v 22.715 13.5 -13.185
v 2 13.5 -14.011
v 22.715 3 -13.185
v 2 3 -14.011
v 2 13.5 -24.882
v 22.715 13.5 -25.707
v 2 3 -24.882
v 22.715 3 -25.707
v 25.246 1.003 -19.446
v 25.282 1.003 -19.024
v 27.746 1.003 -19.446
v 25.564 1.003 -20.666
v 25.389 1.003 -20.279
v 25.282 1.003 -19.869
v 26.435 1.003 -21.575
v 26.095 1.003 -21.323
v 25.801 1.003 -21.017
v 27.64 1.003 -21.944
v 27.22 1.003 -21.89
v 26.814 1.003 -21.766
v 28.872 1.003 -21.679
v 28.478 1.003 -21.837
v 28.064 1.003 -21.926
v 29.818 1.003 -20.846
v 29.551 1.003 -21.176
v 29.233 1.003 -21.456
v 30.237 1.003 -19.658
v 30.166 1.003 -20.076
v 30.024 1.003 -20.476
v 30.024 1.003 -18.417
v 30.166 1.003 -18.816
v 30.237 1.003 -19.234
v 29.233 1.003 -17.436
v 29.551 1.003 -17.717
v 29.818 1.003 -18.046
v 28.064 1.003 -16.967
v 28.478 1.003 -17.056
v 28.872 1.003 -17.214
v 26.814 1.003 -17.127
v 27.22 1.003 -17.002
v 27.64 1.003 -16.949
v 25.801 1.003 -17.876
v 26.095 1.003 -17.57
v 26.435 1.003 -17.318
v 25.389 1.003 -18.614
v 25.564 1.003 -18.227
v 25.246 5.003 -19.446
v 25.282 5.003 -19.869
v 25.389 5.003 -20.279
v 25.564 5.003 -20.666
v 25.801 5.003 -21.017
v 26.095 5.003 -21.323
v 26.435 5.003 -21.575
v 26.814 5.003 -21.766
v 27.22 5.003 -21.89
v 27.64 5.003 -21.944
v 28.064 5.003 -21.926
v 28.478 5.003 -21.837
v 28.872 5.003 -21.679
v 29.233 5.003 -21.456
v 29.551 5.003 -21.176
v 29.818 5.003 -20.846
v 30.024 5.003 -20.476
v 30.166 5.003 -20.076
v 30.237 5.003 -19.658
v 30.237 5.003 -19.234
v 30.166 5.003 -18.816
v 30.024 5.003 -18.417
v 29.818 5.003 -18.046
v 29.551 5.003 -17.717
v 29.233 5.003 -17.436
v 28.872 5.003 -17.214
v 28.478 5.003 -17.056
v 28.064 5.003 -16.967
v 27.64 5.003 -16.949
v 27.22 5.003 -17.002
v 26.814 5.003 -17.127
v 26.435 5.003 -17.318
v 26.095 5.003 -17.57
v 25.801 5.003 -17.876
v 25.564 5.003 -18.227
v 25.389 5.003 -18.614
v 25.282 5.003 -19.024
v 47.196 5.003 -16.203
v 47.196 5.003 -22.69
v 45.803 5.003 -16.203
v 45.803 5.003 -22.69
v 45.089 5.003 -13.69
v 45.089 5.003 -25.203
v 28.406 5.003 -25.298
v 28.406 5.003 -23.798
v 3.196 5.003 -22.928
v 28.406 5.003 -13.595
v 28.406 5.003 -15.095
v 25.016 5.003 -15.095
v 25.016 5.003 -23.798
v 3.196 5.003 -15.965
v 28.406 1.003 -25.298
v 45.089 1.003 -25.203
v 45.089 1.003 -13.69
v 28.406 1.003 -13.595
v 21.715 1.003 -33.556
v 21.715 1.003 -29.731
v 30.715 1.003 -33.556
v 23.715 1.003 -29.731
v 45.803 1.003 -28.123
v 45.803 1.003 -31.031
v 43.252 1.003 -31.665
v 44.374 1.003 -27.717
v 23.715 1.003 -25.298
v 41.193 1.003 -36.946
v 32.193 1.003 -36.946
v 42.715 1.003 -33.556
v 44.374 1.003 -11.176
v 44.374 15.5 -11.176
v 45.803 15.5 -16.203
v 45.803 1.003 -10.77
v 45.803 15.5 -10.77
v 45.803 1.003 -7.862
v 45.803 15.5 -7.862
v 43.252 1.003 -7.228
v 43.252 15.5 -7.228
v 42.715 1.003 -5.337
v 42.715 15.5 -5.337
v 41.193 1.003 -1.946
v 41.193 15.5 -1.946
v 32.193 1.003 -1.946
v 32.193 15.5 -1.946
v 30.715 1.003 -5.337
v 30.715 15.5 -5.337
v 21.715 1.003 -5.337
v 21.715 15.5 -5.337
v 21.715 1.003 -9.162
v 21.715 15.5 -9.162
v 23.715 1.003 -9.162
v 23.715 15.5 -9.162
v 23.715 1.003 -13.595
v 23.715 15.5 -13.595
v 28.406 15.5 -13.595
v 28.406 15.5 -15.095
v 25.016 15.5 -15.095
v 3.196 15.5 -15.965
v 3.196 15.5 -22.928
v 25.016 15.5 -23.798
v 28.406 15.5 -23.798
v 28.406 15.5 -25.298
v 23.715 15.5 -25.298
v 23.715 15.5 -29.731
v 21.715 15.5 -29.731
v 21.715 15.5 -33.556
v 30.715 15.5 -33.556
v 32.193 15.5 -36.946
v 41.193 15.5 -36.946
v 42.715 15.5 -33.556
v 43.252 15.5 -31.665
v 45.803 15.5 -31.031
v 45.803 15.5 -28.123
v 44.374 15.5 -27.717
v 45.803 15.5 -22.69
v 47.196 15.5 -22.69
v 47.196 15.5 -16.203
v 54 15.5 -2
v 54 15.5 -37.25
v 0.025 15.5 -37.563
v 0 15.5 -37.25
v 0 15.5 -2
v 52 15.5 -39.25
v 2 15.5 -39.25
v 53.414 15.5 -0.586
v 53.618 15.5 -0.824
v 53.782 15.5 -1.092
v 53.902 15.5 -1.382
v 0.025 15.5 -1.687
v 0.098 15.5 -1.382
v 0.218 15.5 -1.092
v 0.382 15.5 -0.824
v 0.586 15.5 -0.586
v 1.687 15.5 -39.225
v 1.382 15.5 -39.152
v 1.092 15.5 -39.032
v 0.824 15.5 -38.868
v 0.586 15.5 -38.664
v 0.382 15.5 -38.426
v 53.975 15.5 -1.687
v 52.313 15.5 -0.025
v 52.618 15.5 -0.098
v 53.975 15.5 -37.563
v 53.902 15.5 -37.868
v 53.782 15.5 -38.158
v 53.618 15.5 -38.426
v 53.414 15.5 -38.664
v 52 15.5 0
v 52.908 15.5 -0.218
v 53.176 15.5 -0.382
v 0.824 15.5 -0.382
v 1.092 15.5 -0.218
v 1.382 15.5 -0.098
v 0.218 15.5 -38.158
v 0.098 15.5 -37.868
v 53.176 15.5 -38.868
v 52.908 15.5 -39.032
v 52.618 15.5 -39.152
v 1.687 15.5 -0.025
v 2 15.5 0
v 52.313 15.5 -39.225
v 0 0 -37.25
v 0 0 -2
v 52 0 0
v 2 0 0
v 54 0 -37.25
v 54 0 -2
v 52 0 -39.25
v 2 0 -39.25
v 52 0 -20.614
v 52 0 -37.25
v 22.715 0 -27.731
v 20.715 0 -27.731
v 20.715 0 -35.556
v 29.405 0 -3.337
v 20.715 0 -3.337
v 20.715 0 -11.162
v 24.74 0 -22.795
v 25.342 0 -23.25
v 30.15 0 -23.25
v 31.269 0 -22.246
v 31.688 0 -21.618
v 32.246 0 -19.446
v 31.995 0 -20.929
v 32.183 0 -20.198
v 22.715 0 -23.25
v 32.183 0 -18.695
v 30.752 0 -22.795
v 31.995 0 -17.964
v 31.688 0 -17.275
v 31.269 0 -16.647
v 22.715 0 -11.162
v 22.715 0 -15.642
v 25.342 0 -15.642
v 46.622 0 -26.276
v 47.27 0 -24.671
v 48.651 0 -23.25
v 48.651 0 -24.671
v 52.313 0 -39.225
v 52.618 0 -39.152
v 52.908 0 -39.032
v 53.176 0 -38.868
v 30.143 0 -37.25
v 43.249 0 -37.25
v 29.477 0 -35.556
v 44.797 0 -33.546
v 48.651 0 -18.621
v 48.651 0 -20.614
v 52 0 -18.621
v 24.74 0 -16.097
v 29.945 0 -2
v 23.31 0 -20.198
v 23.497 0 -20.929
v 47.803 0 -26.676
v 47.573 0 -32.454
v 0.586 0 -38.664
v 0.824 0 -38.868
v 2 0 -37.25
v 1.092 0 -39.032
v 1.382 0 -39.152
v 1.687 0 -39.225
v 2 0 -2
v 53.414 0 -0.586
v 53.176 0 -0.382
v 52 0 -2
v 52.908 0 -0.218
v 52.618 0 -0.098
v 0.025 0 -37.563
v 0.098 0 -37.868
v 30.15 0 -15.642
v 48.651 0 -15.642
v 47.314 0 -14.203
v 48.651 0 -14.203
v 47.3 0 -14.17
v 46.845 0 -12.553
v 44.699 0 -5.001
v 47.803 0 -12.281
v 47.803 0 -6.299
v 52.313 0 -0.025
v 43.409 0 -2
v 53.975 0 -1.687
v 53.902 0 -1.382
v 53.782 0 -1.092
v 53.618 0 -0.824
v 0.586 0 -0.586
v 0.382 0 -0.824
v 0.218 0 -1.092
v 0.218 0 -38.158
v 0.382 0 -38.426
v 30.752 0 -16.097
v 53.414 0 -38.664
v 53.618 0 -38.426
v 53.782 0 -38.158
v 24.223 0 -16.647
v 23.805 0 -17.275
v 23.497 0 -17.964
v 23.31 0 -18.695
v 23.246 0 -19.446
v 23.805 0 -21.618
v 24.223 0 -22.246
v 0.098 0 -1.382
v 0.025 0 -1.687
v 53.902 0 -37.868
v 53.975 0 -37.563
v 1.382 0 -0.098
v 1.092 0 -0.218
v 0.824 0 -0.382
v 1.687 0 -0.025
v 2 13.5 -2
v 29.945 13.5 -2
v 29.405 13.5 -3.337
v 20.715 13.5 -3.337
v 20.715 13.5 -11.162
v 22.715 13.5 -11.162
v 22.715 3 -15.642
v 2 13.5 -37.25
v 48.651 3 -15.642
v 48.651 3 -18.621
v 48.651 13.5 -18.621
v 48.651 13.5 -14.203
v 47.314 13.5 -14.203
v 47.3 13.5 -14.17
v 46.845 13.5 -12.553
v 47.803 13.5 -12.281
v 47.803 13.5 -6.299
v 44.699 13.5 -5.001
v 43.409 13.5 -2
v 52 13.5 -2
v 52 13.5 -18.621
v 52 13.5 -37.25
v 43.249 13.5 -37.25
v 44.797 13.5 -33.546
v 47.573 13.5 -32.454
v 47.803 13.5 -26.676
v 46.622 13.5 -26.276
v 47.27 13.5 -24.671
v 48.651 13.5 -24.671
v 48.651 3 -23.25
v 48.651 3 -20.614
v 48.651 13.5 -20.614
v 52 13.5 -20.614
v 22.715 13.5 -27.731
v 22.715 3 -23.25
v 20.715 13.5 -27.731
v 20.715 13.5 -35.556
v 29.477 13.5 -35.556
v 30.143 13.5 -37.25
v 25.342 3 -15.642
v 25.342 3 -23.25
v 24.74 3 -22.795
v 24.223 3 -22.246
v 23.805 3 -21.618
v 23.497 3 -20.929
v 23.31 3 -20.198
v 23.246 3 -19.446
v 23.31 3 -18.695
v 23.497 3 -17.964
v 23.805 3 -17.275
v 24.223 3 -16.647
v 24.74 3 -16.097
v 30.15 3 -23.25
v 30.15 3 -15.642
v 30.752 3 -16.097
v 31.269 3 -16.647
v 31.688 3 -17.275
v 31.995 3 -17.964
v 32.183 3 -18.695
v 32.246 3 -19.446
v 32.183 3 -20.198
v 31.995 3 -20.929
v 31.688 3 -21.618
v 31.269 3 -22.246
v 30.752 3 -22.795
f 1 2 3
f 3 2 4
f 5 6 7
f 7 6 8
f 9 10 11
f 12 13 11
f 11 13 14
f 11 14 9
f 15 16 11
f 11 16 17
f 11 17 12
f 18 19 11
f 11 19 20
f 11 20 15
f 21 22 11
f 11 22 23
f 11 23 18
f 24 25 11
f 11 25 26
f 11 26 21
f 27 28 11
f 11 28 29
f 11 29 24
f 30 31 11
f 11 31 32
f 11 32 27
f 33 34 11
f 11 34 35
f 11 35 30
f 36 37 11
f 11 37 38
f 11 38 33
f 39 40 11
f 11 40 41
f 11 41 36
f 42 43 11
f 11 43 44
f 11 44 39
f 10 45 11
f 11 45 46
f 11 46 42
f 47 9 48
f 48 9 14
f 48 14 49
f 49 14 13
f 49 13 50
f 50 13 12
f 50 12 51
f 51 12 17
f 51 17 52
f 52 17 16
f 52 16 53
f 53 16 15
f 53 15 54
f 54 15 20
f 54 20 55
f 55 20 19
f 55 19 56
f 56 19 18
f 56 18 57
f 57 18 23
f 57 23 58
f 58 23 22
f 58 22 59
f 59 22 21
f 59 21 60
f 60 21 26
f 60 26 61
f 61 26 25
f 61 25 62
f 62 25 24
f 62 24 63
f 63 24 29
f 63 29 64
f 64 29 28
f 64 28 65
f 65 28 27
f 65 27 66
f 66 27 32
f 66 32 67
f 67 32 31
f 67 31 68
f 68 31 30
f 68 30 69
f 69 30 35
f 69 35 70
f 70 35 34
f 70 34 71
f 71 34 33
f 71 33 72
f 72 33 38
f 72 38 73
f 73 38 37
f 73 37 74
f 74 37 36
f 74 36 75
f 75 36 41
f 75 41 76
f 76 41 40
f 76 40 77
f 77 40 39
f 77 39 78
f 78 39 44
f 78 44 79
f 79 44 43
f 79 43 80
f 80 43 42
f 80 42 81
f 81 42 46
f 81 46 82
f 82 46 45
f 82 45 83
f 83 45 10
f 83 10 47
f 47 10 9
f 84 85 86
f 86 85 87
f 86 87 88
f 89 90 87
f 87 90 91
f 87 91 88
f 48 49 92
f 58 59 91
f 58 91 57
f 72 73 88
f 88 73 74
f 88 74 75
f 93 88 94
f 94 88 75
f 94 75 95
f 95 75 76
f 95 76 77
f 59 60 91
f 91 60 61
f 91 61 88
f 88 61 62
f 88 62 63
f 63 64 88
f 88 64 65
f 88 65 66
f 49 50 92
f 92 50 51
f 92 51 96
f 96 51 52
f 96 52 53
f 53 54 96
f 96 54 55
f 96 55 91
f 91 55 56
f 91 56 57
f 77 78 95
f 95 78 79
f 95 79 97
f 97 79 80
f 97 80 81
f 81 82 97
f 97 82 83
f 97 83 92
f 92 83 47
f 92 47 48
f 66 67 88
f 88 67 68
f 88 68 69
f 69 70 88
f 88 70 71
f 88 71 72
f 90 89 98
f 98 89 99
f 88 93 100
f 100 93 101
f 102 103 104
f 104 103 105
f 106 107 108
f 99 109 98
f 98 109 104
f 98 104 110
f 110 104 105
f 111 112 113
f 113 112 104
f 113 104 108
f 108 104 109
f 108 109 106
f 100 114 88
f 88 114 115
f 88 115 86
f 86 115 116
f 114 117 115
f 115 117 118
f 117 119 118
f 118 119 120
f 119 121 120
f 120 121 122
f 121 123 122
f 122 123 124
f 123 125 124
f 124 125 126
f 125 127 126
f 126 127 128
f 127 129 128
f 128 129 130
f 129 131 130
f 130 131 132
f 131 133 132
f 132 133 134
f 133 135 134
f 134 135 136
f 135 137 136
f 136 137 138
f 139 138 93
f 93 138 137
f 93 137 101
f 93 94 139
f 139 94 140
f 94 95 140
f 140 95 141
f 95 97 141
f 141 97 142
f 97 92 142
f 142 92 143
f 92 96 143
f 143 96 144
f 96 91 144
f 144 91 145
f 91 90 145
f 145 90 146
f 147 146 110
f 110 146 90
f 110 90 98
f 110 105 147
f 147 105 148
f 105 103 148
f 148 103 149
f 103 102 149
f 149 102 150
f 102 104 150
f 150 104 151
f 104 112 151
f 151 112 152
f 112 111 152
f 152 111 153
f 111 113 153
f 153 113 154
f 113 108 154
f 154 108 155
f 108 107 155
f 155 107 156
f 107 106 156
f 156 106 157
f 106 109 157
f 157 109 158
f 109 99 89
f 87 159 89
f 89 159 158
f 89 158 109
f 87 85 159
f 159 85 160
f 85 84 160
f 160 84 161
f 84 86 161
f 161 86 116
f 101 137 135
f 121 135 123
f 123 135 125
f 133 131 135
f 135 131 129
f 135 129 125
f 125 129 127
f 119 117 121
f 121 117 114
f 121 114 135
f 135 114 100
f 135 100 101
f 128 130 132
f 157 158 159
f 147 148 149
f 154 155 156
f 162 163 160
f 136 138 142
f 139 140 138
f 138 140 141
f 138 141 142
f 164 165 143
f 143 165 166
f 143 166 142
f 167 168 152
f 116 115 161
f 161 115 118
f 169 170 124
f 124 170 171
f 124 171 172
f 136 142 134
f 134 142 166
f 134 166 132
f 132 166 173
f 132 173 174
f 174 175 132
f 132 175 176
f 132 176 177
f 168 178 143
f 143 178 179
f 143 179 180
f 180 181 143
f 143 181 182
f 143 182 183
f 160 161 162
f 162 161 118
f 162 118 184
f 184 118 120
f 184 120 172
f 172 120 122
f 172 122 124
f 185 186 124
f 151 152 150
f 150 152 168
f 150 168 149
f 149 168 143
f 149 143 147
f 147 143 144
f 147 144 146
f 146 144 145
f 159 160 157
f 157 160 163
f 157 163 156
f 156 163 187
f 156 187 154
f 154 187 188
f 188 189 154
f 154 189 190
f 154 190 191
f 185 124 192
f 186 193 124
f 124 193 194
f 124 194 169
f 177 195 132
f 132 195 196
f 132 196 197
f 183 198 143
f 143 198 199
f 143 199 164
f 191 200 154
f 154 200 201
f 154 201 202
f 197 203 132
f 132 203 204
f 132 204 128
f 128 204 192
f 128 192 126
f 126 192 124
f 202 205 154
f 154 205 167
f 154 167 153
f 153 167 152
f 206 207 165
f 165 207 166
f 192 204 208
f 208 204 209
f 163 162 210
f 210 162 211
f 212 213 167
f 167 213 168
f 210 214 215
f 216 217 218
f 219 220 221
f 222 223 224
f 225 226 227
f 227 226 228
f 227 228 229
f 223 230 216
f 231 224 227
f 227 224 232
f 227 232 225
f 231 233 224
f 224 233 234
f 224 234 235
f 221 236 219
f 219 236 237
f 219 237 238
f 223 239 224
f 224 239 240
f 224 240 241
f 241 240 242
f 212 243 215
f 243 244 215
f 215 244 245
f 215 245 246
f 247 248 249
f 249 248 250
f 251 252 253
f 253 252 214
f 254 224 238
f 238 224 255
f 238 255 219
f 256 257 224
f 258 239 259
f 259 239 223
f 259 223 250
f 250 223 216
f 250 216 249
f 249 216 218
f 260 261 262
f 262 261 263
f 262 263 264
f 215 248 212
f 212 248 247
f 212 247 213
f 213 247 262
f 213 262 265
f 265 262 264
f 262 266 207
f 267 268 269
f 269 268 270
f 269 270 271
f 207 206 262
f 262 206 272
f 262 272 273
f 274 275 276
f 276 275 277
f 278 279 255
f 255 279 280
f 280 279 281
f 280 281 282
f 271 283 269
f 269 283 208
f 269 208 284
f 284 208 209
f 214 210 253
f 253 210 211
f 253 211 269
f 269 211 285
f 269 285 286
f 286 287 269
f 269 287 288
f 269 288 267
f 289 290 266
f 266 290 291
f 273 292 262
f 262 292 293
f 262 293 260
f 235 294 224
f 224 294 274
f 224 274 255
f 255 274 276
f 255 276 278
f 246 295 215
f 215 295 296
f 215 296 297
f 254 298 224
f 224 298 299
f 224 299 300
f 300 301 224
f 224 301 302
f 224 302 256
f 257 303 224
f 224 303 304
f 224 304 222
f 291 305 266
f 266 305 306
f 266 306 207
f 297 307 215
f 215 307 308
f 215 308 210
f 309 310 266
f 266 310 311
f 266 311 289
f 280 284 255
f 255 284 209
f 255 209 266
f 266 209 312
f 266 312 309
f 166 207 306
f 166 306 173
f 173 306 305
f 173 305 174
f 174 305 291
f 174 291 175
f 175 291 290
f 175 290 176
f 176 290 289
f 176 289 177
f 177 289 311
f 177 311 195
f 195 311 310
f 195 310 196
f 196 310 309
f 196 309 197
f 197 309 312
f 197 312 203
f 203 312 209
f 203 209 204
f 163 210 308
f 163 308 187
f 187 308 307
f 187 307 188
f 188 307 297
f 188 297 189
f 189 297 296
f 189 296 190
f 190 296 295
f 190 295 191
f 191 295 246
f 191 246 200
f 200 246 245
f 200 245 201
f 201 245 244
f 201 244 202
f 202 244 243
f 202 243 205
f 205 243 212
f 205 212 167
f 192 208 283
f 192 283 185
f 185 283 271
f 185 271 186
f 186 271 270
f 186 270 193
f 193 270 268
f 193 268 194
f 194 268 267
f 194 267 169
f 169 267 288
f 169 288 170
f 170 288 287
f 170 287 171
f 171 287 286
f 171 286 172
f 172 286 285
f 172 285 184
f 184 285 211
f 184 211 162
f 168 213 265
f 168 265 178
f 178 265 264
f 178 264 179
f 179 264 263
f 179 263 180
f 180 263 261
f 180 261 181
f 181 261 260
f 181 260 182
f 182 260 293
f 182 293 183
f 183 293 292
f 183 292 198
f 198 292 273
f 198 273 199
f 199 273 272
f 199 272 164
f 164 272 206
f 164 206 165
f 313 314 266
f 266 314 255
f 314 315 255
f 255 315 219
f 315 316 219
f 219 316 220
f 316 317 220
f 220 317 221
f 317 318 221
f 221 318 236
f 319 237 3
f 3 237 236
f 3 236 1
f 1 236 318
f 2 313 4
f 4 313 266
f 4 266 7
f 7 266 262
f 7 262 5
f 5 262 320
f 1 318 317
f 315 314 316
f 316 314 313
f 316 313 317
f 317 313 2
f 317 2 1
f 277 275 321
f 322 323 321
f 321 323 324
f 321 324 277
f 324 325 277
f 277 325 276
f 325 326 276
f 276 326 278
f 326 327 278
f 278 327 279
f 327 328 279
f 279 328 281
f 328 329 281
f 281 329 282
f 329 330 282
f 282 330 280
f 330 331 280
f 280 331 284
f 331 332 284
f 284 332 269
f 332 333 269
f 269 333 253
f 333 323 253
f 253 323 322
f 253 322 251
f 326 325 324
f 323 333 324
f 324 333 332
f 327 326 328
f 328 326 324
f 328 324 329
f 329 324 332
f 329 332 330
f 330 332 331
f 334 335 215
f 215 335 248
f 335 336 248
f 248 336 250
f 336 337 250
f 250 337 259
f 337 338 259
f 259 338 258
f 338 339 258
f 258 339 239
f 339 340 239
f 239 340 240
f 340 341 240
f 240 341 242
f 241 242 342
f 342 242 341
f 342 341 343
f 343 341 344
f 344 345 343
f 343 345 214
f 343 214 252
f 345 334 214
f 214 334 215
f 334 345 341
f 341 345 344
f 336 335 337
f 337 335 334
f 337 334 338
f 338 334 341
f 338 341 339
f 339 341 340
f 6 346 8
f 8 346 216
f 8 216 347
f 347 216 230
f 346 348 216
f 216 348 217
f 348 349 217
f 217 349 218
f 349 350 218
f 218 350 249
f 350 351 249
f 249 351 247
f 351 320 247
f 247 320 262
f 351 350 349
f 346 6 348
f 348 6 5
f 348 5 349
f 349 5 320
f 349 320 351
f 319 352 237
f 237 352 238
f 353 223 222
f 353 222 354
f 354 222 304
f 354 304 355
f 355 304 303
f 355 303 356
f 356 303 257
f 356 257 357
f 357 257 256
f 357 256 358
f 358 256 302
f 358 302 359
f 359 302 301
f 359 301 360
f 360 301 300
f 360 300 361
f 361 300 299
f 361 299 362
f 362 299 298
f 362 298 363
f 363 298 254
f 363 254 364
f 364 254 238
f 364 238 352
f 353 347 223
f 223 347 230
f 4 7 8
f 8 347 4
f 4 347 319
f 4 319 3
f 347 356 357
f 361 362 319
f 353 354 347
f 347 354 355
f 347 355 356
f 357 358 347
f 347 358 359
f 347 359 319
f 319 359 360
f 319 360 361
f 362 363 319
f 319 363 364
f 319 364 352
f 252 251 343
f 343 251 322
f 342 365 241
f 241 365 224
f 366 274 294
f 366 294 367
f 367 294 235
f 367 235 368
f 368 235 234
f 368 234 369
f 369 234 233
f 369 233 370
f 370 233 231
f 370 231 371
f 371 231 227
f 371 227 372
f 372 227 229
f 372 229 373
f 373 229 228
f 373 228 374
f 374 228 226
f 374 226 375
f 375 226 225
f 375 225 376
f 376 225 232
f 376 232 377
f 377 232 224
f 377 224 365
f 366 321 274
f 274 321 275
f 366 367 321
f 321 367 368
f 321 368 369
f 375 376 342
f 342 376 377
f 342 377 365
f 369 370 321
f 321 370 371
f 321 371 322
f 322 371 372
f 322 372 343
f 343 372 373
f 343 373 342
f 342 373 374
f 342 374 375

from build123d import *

# Parameters (mm, degrees)
SKETCH1_W                = 54
SKETCH1_H                = 39.25
BOSS_EXTRUDE1_DEPTH      = 15.5
FILLET1_R                = 2
FILLET2_R                = 2
E_WING_START             = 8.464149768
E_WING_BLANK_DEPTH       = 10.5
E_WING_START_2           = 4.464149768
E_WING_BLANK_2_OUTLINE_R = 2.5
E_WING_BLANK_2_DEPTH     = 4
BODY_MOVE_COPY5_ANGLE    = 90
CUT_EXTRUDE1_DEPTH       = 13.5
CUT_EXTRUDE2_DEPTH       = 3


with BuildPart() as part:
    # Sketch1 → Boss-Extrude1 (new body)
    with BuildSketch(Plane(origin=(0, 0, 0), x_dir=(1, 0, 0), z_dir=(0, 1, 0))):
        with Locations((27, 19.625)):
            Rectangle(SKETCH1_W, SKETCH1_H)
    extrude(amount=BOSS_EXTRUDE1_DEPTH)

    # Fillet1
    fillet1_edges = [part.edges().sort_by_distance(p)[0] for p in [
        (0, 7.75, 0),
    ]]
    fillet(fillet1_edges, radius=FILLET1_R)

    # Fillet2
    fillet2_edges = [part.edges().sort_by_distance(p)[0] for p in [
        (0, 7.75, -39.25),
        (54, 7.75, -39.25),
        (54, 7.75, 0),
    ]]
    fillet(fillet2_edges, radius=FILLET2_R)


with BuildPart() as body_2:
    # E-Wing Blank: read off the stored shape, not the designer's step
    # E-Wing Blank outline → E-Wing Blank (new body)
    with BuildSketch(Plane(origin=(0, 0, 0), x_dir=(1, 0, 0), z_dir=(0, 1, 0)).offset(E_WING_START)):
        Polygon((76.333039674, 32.997673143), (76.333039674, 31.604556958), (82.819483769, 31.604556958), (82.819483769, 32.997673143), (87.846693693, 34.426348928), (88.252707074, 32.997673143), (91.160450403, 32.997673143), (91.794809137, 35.548358356), (93.685930379, 36.085793467), (97.076261721, 37.607956728), (97.076261721, 46.607956728), (93.685930379, 48.085793467), (93.685930379, 57.085793467), (89.860941172, 57.085793467), (89.860941172, 55.085793467), (85.427430955, 55.085793467), (85.427430955, 50.394400823), (83.927430955, 50.394400823), (83.927430955, 53.784732166), (83.058115227, 75.604556958), (76.094408216, 75.604556958), (75.225092487, 53.784732166), (75.225092487, 50.394400823), (73.725092487, 50.394400823), (73.725092487, 55.085793467), (69.29158227, 55.085793467), (69.29158227, 57.085793467), (65.466593064, 57.085793467), (65.466593064, 48.085793467), (62.076261721, 46.607956728), (62.076261721, 37.607956728), (65.466593064, 36.085793467), (67.357714306, 35.548358356), (67.99207304, 32.997673143), (70.899816369, 32.997673143), (71.30582975, 34.426348928), align=None)
    extrude(amount=E_WING_BLANK_DEPTH)

    # E-Wing Blank 2 outline → E-Wing Blank 2 (add)
    with BuildSketch(Plane(origin=(0, 0, 0), x_dir=(1, 0, 0), z_dir=(0, 1, 0)).offset(E_WING_START_2)):
        Polygon((71.30582975, 34.426348928), (73.819434712, 33.712011036), (73.725092487, 50.394400823), (73.725092487, 55.085793467), (69.29158227, 55.085793467), (69.29158227, 57.085793467), (65.466593064, 57.085793467), (65.466593064, 48.085793467), (62.076261721, 46.607956728), (62.076261721, 37.607956728), (65.466593064, 36.085793467), (67.357714306, 35.548358356), (67.99207304, 32.997673143), (70.899816369, 32.997673143), align=None)
        Polygon((85.427430955, 50.394400823), (85.333088731, 33.712011036), (87.846693693, 34.426348928), (88.252707074, 32.997673143), (91.160450403, 32.997673143), (91.794809137, 35.548358356), (93.685930379, 36.085793467), (97.076261721, 37.607956728), (97.076261721, 46.607956728), (93.685930379, 48.085793467), (93.685930379, 57.085793467), (89.860941172, 57.085793467), (89.860941172, 55.085793467), (85.427430955, 55.085793467), align=None)
        with Locations((79.576261721, 51.054553675)):
            Circle(E_WING_BLANK_2_OUTLINE_R)
    extrude(amount=E_WING_BLANK_2_DEPTH)


with BuildPart() as body_2_1:
    # Body-Move/Copy3: moved
    add(body_2.part.moved(Location((0, -2.941364734, 30.286723837))))


with BuildPart() as body_2_2:
    # Body-Move/Copy4: moved
    add(body_2_1.part.moved(Location((-54.380009777, 0, 0))))


with BuildPart() as body_2_3:
    # Body-Move/Copy5: moved
    add(body_2_2.part.rotate(Axis((25.196251944, 0, -23.317833121), (0, 1, 0)), BODY_MOVE_COPY5_ANGLE))


with BuildPart() as body_2_4:
    # Body-Move/Copy6: moved
    add(body_2_3.part.moved(Location((0, 0, 3.871475448))))


with BuildPart() as body_2_5:
    # Body-Move/Copy8: moved
    add(body_2_4.part.moved(Location((0, -0.52, 0))))


with BuildPart() as part_1:
    add(part.part)

    # Intersect1: read off the stored shape, not the designer's step
    # Intersect1: cut body 2
    add(body_2_5.part, mode=Mode.SUBTRACT)

    # Sketch3 → Cut-Extrude1 (cut)
    with BuildSketch(Plane(origin=(0, 0, 0), x_dir=(-1, 0, 0), z_dir=(0, -1, 0))):
        Polygon((-2, 2), (-2, 14.010576961), (-22.715015436, 13.185277541), (-22.715015436, 11.161678222), (-20.715015436, 11.161678222), (-20.715015436, 3.336689015), (-29.405061858, 3.336689015), (-29.944686746, 2), align=None)
        Polygon((-2, 24.882138385), (-22.715015436, 25.707437805), (-22.715015436, 27.731037124), (-20.715015436, 27.731037124), (-20.715015436, 35.556026331), (-29.477301308, 35.556026331), (-30.143460637, 37.25), (-2, 37.25), align=None)
        Polygon((-43.248853496, 37.25), (-44.797063028, 33.545989344), (-47.572936951, 32.454370068), (-47.80313576, 26.676379962), (-46.622265015, 26.276395033), (-47.270268456, 24.671244676), (-48.650700904, 24.671244676), (-48.650700904, 20.614103613), (-52, 20.614103613), (-52, 37.25), align=None)
        Polygon((-48.650700904, 14.203135625), (-47.31395374, 14.203135625), (-47.2997118, 14.169991759), (-46.845009369, 12.553018905), (-47.80313576, 12.280730301), (-47.80313576, 6.298647203), (-44.698842535, 5.001108722), (-43.40926424, 2), (-52, 2), (-52, 18.620885492), (-48.650700904, 18.620885492), align=None)
    extrude(amount=-CUT_EXTRUDE1_DEPTH, mode=Mode.SUBTRACT)

    # Sketch4 → Cut-Extrude2 (cut)
    with BuildSketch(Plane.XZ):
        with BuildLine():
            Line((2, -14.010576961), (2, -24.882138385))
            Line((2, -24.882138385), (22.715015436, -25.707437805))
            Line((22.715015436, -25.707437805), (22.715015436, -23.250355795))
            Line((22.715015436, -23.250355795), (25.342175719, -23.250355795))
            ThreePointArc((25.342175719, -23.250355795), (23.246255228, -19.446357673), (25.342175719, -15.642359551))
            Line((25.342175719, -15.642359551), (22.715015436, -15.642359551))
            Line((22.715015436, -15.642359551), (22.715015436, -13.185277541))
            Line((22.715015436, -13.185277541), (2, -14.010576961))
        make_face()
        with BuildLine():
            Line((48.650700904, -23.250355795), (48.650700904, -20.614103613))
            Line((48.650700904, -20.614103613), (48.650700904, -18.620885492))
            Line((48.650700904, -18.620885492), (48.650700904, -15.642359551))
            Line((48.650700904, -15.642359551), (30.150334738, -15.642359551))
            ThreePointArc((30.150334738, -15.642359551), (32.246255228, -19.446357673), (30.150334738, -23.250355795))
            Line((30.150334738, -23.250355795), (48.650700904, -23.250355795))
        make_face()
    extrude(amount=-CUT_EXTRUDE2_DEPTH, mode=Mode.SUBTRACT)


solid = part_1.part
